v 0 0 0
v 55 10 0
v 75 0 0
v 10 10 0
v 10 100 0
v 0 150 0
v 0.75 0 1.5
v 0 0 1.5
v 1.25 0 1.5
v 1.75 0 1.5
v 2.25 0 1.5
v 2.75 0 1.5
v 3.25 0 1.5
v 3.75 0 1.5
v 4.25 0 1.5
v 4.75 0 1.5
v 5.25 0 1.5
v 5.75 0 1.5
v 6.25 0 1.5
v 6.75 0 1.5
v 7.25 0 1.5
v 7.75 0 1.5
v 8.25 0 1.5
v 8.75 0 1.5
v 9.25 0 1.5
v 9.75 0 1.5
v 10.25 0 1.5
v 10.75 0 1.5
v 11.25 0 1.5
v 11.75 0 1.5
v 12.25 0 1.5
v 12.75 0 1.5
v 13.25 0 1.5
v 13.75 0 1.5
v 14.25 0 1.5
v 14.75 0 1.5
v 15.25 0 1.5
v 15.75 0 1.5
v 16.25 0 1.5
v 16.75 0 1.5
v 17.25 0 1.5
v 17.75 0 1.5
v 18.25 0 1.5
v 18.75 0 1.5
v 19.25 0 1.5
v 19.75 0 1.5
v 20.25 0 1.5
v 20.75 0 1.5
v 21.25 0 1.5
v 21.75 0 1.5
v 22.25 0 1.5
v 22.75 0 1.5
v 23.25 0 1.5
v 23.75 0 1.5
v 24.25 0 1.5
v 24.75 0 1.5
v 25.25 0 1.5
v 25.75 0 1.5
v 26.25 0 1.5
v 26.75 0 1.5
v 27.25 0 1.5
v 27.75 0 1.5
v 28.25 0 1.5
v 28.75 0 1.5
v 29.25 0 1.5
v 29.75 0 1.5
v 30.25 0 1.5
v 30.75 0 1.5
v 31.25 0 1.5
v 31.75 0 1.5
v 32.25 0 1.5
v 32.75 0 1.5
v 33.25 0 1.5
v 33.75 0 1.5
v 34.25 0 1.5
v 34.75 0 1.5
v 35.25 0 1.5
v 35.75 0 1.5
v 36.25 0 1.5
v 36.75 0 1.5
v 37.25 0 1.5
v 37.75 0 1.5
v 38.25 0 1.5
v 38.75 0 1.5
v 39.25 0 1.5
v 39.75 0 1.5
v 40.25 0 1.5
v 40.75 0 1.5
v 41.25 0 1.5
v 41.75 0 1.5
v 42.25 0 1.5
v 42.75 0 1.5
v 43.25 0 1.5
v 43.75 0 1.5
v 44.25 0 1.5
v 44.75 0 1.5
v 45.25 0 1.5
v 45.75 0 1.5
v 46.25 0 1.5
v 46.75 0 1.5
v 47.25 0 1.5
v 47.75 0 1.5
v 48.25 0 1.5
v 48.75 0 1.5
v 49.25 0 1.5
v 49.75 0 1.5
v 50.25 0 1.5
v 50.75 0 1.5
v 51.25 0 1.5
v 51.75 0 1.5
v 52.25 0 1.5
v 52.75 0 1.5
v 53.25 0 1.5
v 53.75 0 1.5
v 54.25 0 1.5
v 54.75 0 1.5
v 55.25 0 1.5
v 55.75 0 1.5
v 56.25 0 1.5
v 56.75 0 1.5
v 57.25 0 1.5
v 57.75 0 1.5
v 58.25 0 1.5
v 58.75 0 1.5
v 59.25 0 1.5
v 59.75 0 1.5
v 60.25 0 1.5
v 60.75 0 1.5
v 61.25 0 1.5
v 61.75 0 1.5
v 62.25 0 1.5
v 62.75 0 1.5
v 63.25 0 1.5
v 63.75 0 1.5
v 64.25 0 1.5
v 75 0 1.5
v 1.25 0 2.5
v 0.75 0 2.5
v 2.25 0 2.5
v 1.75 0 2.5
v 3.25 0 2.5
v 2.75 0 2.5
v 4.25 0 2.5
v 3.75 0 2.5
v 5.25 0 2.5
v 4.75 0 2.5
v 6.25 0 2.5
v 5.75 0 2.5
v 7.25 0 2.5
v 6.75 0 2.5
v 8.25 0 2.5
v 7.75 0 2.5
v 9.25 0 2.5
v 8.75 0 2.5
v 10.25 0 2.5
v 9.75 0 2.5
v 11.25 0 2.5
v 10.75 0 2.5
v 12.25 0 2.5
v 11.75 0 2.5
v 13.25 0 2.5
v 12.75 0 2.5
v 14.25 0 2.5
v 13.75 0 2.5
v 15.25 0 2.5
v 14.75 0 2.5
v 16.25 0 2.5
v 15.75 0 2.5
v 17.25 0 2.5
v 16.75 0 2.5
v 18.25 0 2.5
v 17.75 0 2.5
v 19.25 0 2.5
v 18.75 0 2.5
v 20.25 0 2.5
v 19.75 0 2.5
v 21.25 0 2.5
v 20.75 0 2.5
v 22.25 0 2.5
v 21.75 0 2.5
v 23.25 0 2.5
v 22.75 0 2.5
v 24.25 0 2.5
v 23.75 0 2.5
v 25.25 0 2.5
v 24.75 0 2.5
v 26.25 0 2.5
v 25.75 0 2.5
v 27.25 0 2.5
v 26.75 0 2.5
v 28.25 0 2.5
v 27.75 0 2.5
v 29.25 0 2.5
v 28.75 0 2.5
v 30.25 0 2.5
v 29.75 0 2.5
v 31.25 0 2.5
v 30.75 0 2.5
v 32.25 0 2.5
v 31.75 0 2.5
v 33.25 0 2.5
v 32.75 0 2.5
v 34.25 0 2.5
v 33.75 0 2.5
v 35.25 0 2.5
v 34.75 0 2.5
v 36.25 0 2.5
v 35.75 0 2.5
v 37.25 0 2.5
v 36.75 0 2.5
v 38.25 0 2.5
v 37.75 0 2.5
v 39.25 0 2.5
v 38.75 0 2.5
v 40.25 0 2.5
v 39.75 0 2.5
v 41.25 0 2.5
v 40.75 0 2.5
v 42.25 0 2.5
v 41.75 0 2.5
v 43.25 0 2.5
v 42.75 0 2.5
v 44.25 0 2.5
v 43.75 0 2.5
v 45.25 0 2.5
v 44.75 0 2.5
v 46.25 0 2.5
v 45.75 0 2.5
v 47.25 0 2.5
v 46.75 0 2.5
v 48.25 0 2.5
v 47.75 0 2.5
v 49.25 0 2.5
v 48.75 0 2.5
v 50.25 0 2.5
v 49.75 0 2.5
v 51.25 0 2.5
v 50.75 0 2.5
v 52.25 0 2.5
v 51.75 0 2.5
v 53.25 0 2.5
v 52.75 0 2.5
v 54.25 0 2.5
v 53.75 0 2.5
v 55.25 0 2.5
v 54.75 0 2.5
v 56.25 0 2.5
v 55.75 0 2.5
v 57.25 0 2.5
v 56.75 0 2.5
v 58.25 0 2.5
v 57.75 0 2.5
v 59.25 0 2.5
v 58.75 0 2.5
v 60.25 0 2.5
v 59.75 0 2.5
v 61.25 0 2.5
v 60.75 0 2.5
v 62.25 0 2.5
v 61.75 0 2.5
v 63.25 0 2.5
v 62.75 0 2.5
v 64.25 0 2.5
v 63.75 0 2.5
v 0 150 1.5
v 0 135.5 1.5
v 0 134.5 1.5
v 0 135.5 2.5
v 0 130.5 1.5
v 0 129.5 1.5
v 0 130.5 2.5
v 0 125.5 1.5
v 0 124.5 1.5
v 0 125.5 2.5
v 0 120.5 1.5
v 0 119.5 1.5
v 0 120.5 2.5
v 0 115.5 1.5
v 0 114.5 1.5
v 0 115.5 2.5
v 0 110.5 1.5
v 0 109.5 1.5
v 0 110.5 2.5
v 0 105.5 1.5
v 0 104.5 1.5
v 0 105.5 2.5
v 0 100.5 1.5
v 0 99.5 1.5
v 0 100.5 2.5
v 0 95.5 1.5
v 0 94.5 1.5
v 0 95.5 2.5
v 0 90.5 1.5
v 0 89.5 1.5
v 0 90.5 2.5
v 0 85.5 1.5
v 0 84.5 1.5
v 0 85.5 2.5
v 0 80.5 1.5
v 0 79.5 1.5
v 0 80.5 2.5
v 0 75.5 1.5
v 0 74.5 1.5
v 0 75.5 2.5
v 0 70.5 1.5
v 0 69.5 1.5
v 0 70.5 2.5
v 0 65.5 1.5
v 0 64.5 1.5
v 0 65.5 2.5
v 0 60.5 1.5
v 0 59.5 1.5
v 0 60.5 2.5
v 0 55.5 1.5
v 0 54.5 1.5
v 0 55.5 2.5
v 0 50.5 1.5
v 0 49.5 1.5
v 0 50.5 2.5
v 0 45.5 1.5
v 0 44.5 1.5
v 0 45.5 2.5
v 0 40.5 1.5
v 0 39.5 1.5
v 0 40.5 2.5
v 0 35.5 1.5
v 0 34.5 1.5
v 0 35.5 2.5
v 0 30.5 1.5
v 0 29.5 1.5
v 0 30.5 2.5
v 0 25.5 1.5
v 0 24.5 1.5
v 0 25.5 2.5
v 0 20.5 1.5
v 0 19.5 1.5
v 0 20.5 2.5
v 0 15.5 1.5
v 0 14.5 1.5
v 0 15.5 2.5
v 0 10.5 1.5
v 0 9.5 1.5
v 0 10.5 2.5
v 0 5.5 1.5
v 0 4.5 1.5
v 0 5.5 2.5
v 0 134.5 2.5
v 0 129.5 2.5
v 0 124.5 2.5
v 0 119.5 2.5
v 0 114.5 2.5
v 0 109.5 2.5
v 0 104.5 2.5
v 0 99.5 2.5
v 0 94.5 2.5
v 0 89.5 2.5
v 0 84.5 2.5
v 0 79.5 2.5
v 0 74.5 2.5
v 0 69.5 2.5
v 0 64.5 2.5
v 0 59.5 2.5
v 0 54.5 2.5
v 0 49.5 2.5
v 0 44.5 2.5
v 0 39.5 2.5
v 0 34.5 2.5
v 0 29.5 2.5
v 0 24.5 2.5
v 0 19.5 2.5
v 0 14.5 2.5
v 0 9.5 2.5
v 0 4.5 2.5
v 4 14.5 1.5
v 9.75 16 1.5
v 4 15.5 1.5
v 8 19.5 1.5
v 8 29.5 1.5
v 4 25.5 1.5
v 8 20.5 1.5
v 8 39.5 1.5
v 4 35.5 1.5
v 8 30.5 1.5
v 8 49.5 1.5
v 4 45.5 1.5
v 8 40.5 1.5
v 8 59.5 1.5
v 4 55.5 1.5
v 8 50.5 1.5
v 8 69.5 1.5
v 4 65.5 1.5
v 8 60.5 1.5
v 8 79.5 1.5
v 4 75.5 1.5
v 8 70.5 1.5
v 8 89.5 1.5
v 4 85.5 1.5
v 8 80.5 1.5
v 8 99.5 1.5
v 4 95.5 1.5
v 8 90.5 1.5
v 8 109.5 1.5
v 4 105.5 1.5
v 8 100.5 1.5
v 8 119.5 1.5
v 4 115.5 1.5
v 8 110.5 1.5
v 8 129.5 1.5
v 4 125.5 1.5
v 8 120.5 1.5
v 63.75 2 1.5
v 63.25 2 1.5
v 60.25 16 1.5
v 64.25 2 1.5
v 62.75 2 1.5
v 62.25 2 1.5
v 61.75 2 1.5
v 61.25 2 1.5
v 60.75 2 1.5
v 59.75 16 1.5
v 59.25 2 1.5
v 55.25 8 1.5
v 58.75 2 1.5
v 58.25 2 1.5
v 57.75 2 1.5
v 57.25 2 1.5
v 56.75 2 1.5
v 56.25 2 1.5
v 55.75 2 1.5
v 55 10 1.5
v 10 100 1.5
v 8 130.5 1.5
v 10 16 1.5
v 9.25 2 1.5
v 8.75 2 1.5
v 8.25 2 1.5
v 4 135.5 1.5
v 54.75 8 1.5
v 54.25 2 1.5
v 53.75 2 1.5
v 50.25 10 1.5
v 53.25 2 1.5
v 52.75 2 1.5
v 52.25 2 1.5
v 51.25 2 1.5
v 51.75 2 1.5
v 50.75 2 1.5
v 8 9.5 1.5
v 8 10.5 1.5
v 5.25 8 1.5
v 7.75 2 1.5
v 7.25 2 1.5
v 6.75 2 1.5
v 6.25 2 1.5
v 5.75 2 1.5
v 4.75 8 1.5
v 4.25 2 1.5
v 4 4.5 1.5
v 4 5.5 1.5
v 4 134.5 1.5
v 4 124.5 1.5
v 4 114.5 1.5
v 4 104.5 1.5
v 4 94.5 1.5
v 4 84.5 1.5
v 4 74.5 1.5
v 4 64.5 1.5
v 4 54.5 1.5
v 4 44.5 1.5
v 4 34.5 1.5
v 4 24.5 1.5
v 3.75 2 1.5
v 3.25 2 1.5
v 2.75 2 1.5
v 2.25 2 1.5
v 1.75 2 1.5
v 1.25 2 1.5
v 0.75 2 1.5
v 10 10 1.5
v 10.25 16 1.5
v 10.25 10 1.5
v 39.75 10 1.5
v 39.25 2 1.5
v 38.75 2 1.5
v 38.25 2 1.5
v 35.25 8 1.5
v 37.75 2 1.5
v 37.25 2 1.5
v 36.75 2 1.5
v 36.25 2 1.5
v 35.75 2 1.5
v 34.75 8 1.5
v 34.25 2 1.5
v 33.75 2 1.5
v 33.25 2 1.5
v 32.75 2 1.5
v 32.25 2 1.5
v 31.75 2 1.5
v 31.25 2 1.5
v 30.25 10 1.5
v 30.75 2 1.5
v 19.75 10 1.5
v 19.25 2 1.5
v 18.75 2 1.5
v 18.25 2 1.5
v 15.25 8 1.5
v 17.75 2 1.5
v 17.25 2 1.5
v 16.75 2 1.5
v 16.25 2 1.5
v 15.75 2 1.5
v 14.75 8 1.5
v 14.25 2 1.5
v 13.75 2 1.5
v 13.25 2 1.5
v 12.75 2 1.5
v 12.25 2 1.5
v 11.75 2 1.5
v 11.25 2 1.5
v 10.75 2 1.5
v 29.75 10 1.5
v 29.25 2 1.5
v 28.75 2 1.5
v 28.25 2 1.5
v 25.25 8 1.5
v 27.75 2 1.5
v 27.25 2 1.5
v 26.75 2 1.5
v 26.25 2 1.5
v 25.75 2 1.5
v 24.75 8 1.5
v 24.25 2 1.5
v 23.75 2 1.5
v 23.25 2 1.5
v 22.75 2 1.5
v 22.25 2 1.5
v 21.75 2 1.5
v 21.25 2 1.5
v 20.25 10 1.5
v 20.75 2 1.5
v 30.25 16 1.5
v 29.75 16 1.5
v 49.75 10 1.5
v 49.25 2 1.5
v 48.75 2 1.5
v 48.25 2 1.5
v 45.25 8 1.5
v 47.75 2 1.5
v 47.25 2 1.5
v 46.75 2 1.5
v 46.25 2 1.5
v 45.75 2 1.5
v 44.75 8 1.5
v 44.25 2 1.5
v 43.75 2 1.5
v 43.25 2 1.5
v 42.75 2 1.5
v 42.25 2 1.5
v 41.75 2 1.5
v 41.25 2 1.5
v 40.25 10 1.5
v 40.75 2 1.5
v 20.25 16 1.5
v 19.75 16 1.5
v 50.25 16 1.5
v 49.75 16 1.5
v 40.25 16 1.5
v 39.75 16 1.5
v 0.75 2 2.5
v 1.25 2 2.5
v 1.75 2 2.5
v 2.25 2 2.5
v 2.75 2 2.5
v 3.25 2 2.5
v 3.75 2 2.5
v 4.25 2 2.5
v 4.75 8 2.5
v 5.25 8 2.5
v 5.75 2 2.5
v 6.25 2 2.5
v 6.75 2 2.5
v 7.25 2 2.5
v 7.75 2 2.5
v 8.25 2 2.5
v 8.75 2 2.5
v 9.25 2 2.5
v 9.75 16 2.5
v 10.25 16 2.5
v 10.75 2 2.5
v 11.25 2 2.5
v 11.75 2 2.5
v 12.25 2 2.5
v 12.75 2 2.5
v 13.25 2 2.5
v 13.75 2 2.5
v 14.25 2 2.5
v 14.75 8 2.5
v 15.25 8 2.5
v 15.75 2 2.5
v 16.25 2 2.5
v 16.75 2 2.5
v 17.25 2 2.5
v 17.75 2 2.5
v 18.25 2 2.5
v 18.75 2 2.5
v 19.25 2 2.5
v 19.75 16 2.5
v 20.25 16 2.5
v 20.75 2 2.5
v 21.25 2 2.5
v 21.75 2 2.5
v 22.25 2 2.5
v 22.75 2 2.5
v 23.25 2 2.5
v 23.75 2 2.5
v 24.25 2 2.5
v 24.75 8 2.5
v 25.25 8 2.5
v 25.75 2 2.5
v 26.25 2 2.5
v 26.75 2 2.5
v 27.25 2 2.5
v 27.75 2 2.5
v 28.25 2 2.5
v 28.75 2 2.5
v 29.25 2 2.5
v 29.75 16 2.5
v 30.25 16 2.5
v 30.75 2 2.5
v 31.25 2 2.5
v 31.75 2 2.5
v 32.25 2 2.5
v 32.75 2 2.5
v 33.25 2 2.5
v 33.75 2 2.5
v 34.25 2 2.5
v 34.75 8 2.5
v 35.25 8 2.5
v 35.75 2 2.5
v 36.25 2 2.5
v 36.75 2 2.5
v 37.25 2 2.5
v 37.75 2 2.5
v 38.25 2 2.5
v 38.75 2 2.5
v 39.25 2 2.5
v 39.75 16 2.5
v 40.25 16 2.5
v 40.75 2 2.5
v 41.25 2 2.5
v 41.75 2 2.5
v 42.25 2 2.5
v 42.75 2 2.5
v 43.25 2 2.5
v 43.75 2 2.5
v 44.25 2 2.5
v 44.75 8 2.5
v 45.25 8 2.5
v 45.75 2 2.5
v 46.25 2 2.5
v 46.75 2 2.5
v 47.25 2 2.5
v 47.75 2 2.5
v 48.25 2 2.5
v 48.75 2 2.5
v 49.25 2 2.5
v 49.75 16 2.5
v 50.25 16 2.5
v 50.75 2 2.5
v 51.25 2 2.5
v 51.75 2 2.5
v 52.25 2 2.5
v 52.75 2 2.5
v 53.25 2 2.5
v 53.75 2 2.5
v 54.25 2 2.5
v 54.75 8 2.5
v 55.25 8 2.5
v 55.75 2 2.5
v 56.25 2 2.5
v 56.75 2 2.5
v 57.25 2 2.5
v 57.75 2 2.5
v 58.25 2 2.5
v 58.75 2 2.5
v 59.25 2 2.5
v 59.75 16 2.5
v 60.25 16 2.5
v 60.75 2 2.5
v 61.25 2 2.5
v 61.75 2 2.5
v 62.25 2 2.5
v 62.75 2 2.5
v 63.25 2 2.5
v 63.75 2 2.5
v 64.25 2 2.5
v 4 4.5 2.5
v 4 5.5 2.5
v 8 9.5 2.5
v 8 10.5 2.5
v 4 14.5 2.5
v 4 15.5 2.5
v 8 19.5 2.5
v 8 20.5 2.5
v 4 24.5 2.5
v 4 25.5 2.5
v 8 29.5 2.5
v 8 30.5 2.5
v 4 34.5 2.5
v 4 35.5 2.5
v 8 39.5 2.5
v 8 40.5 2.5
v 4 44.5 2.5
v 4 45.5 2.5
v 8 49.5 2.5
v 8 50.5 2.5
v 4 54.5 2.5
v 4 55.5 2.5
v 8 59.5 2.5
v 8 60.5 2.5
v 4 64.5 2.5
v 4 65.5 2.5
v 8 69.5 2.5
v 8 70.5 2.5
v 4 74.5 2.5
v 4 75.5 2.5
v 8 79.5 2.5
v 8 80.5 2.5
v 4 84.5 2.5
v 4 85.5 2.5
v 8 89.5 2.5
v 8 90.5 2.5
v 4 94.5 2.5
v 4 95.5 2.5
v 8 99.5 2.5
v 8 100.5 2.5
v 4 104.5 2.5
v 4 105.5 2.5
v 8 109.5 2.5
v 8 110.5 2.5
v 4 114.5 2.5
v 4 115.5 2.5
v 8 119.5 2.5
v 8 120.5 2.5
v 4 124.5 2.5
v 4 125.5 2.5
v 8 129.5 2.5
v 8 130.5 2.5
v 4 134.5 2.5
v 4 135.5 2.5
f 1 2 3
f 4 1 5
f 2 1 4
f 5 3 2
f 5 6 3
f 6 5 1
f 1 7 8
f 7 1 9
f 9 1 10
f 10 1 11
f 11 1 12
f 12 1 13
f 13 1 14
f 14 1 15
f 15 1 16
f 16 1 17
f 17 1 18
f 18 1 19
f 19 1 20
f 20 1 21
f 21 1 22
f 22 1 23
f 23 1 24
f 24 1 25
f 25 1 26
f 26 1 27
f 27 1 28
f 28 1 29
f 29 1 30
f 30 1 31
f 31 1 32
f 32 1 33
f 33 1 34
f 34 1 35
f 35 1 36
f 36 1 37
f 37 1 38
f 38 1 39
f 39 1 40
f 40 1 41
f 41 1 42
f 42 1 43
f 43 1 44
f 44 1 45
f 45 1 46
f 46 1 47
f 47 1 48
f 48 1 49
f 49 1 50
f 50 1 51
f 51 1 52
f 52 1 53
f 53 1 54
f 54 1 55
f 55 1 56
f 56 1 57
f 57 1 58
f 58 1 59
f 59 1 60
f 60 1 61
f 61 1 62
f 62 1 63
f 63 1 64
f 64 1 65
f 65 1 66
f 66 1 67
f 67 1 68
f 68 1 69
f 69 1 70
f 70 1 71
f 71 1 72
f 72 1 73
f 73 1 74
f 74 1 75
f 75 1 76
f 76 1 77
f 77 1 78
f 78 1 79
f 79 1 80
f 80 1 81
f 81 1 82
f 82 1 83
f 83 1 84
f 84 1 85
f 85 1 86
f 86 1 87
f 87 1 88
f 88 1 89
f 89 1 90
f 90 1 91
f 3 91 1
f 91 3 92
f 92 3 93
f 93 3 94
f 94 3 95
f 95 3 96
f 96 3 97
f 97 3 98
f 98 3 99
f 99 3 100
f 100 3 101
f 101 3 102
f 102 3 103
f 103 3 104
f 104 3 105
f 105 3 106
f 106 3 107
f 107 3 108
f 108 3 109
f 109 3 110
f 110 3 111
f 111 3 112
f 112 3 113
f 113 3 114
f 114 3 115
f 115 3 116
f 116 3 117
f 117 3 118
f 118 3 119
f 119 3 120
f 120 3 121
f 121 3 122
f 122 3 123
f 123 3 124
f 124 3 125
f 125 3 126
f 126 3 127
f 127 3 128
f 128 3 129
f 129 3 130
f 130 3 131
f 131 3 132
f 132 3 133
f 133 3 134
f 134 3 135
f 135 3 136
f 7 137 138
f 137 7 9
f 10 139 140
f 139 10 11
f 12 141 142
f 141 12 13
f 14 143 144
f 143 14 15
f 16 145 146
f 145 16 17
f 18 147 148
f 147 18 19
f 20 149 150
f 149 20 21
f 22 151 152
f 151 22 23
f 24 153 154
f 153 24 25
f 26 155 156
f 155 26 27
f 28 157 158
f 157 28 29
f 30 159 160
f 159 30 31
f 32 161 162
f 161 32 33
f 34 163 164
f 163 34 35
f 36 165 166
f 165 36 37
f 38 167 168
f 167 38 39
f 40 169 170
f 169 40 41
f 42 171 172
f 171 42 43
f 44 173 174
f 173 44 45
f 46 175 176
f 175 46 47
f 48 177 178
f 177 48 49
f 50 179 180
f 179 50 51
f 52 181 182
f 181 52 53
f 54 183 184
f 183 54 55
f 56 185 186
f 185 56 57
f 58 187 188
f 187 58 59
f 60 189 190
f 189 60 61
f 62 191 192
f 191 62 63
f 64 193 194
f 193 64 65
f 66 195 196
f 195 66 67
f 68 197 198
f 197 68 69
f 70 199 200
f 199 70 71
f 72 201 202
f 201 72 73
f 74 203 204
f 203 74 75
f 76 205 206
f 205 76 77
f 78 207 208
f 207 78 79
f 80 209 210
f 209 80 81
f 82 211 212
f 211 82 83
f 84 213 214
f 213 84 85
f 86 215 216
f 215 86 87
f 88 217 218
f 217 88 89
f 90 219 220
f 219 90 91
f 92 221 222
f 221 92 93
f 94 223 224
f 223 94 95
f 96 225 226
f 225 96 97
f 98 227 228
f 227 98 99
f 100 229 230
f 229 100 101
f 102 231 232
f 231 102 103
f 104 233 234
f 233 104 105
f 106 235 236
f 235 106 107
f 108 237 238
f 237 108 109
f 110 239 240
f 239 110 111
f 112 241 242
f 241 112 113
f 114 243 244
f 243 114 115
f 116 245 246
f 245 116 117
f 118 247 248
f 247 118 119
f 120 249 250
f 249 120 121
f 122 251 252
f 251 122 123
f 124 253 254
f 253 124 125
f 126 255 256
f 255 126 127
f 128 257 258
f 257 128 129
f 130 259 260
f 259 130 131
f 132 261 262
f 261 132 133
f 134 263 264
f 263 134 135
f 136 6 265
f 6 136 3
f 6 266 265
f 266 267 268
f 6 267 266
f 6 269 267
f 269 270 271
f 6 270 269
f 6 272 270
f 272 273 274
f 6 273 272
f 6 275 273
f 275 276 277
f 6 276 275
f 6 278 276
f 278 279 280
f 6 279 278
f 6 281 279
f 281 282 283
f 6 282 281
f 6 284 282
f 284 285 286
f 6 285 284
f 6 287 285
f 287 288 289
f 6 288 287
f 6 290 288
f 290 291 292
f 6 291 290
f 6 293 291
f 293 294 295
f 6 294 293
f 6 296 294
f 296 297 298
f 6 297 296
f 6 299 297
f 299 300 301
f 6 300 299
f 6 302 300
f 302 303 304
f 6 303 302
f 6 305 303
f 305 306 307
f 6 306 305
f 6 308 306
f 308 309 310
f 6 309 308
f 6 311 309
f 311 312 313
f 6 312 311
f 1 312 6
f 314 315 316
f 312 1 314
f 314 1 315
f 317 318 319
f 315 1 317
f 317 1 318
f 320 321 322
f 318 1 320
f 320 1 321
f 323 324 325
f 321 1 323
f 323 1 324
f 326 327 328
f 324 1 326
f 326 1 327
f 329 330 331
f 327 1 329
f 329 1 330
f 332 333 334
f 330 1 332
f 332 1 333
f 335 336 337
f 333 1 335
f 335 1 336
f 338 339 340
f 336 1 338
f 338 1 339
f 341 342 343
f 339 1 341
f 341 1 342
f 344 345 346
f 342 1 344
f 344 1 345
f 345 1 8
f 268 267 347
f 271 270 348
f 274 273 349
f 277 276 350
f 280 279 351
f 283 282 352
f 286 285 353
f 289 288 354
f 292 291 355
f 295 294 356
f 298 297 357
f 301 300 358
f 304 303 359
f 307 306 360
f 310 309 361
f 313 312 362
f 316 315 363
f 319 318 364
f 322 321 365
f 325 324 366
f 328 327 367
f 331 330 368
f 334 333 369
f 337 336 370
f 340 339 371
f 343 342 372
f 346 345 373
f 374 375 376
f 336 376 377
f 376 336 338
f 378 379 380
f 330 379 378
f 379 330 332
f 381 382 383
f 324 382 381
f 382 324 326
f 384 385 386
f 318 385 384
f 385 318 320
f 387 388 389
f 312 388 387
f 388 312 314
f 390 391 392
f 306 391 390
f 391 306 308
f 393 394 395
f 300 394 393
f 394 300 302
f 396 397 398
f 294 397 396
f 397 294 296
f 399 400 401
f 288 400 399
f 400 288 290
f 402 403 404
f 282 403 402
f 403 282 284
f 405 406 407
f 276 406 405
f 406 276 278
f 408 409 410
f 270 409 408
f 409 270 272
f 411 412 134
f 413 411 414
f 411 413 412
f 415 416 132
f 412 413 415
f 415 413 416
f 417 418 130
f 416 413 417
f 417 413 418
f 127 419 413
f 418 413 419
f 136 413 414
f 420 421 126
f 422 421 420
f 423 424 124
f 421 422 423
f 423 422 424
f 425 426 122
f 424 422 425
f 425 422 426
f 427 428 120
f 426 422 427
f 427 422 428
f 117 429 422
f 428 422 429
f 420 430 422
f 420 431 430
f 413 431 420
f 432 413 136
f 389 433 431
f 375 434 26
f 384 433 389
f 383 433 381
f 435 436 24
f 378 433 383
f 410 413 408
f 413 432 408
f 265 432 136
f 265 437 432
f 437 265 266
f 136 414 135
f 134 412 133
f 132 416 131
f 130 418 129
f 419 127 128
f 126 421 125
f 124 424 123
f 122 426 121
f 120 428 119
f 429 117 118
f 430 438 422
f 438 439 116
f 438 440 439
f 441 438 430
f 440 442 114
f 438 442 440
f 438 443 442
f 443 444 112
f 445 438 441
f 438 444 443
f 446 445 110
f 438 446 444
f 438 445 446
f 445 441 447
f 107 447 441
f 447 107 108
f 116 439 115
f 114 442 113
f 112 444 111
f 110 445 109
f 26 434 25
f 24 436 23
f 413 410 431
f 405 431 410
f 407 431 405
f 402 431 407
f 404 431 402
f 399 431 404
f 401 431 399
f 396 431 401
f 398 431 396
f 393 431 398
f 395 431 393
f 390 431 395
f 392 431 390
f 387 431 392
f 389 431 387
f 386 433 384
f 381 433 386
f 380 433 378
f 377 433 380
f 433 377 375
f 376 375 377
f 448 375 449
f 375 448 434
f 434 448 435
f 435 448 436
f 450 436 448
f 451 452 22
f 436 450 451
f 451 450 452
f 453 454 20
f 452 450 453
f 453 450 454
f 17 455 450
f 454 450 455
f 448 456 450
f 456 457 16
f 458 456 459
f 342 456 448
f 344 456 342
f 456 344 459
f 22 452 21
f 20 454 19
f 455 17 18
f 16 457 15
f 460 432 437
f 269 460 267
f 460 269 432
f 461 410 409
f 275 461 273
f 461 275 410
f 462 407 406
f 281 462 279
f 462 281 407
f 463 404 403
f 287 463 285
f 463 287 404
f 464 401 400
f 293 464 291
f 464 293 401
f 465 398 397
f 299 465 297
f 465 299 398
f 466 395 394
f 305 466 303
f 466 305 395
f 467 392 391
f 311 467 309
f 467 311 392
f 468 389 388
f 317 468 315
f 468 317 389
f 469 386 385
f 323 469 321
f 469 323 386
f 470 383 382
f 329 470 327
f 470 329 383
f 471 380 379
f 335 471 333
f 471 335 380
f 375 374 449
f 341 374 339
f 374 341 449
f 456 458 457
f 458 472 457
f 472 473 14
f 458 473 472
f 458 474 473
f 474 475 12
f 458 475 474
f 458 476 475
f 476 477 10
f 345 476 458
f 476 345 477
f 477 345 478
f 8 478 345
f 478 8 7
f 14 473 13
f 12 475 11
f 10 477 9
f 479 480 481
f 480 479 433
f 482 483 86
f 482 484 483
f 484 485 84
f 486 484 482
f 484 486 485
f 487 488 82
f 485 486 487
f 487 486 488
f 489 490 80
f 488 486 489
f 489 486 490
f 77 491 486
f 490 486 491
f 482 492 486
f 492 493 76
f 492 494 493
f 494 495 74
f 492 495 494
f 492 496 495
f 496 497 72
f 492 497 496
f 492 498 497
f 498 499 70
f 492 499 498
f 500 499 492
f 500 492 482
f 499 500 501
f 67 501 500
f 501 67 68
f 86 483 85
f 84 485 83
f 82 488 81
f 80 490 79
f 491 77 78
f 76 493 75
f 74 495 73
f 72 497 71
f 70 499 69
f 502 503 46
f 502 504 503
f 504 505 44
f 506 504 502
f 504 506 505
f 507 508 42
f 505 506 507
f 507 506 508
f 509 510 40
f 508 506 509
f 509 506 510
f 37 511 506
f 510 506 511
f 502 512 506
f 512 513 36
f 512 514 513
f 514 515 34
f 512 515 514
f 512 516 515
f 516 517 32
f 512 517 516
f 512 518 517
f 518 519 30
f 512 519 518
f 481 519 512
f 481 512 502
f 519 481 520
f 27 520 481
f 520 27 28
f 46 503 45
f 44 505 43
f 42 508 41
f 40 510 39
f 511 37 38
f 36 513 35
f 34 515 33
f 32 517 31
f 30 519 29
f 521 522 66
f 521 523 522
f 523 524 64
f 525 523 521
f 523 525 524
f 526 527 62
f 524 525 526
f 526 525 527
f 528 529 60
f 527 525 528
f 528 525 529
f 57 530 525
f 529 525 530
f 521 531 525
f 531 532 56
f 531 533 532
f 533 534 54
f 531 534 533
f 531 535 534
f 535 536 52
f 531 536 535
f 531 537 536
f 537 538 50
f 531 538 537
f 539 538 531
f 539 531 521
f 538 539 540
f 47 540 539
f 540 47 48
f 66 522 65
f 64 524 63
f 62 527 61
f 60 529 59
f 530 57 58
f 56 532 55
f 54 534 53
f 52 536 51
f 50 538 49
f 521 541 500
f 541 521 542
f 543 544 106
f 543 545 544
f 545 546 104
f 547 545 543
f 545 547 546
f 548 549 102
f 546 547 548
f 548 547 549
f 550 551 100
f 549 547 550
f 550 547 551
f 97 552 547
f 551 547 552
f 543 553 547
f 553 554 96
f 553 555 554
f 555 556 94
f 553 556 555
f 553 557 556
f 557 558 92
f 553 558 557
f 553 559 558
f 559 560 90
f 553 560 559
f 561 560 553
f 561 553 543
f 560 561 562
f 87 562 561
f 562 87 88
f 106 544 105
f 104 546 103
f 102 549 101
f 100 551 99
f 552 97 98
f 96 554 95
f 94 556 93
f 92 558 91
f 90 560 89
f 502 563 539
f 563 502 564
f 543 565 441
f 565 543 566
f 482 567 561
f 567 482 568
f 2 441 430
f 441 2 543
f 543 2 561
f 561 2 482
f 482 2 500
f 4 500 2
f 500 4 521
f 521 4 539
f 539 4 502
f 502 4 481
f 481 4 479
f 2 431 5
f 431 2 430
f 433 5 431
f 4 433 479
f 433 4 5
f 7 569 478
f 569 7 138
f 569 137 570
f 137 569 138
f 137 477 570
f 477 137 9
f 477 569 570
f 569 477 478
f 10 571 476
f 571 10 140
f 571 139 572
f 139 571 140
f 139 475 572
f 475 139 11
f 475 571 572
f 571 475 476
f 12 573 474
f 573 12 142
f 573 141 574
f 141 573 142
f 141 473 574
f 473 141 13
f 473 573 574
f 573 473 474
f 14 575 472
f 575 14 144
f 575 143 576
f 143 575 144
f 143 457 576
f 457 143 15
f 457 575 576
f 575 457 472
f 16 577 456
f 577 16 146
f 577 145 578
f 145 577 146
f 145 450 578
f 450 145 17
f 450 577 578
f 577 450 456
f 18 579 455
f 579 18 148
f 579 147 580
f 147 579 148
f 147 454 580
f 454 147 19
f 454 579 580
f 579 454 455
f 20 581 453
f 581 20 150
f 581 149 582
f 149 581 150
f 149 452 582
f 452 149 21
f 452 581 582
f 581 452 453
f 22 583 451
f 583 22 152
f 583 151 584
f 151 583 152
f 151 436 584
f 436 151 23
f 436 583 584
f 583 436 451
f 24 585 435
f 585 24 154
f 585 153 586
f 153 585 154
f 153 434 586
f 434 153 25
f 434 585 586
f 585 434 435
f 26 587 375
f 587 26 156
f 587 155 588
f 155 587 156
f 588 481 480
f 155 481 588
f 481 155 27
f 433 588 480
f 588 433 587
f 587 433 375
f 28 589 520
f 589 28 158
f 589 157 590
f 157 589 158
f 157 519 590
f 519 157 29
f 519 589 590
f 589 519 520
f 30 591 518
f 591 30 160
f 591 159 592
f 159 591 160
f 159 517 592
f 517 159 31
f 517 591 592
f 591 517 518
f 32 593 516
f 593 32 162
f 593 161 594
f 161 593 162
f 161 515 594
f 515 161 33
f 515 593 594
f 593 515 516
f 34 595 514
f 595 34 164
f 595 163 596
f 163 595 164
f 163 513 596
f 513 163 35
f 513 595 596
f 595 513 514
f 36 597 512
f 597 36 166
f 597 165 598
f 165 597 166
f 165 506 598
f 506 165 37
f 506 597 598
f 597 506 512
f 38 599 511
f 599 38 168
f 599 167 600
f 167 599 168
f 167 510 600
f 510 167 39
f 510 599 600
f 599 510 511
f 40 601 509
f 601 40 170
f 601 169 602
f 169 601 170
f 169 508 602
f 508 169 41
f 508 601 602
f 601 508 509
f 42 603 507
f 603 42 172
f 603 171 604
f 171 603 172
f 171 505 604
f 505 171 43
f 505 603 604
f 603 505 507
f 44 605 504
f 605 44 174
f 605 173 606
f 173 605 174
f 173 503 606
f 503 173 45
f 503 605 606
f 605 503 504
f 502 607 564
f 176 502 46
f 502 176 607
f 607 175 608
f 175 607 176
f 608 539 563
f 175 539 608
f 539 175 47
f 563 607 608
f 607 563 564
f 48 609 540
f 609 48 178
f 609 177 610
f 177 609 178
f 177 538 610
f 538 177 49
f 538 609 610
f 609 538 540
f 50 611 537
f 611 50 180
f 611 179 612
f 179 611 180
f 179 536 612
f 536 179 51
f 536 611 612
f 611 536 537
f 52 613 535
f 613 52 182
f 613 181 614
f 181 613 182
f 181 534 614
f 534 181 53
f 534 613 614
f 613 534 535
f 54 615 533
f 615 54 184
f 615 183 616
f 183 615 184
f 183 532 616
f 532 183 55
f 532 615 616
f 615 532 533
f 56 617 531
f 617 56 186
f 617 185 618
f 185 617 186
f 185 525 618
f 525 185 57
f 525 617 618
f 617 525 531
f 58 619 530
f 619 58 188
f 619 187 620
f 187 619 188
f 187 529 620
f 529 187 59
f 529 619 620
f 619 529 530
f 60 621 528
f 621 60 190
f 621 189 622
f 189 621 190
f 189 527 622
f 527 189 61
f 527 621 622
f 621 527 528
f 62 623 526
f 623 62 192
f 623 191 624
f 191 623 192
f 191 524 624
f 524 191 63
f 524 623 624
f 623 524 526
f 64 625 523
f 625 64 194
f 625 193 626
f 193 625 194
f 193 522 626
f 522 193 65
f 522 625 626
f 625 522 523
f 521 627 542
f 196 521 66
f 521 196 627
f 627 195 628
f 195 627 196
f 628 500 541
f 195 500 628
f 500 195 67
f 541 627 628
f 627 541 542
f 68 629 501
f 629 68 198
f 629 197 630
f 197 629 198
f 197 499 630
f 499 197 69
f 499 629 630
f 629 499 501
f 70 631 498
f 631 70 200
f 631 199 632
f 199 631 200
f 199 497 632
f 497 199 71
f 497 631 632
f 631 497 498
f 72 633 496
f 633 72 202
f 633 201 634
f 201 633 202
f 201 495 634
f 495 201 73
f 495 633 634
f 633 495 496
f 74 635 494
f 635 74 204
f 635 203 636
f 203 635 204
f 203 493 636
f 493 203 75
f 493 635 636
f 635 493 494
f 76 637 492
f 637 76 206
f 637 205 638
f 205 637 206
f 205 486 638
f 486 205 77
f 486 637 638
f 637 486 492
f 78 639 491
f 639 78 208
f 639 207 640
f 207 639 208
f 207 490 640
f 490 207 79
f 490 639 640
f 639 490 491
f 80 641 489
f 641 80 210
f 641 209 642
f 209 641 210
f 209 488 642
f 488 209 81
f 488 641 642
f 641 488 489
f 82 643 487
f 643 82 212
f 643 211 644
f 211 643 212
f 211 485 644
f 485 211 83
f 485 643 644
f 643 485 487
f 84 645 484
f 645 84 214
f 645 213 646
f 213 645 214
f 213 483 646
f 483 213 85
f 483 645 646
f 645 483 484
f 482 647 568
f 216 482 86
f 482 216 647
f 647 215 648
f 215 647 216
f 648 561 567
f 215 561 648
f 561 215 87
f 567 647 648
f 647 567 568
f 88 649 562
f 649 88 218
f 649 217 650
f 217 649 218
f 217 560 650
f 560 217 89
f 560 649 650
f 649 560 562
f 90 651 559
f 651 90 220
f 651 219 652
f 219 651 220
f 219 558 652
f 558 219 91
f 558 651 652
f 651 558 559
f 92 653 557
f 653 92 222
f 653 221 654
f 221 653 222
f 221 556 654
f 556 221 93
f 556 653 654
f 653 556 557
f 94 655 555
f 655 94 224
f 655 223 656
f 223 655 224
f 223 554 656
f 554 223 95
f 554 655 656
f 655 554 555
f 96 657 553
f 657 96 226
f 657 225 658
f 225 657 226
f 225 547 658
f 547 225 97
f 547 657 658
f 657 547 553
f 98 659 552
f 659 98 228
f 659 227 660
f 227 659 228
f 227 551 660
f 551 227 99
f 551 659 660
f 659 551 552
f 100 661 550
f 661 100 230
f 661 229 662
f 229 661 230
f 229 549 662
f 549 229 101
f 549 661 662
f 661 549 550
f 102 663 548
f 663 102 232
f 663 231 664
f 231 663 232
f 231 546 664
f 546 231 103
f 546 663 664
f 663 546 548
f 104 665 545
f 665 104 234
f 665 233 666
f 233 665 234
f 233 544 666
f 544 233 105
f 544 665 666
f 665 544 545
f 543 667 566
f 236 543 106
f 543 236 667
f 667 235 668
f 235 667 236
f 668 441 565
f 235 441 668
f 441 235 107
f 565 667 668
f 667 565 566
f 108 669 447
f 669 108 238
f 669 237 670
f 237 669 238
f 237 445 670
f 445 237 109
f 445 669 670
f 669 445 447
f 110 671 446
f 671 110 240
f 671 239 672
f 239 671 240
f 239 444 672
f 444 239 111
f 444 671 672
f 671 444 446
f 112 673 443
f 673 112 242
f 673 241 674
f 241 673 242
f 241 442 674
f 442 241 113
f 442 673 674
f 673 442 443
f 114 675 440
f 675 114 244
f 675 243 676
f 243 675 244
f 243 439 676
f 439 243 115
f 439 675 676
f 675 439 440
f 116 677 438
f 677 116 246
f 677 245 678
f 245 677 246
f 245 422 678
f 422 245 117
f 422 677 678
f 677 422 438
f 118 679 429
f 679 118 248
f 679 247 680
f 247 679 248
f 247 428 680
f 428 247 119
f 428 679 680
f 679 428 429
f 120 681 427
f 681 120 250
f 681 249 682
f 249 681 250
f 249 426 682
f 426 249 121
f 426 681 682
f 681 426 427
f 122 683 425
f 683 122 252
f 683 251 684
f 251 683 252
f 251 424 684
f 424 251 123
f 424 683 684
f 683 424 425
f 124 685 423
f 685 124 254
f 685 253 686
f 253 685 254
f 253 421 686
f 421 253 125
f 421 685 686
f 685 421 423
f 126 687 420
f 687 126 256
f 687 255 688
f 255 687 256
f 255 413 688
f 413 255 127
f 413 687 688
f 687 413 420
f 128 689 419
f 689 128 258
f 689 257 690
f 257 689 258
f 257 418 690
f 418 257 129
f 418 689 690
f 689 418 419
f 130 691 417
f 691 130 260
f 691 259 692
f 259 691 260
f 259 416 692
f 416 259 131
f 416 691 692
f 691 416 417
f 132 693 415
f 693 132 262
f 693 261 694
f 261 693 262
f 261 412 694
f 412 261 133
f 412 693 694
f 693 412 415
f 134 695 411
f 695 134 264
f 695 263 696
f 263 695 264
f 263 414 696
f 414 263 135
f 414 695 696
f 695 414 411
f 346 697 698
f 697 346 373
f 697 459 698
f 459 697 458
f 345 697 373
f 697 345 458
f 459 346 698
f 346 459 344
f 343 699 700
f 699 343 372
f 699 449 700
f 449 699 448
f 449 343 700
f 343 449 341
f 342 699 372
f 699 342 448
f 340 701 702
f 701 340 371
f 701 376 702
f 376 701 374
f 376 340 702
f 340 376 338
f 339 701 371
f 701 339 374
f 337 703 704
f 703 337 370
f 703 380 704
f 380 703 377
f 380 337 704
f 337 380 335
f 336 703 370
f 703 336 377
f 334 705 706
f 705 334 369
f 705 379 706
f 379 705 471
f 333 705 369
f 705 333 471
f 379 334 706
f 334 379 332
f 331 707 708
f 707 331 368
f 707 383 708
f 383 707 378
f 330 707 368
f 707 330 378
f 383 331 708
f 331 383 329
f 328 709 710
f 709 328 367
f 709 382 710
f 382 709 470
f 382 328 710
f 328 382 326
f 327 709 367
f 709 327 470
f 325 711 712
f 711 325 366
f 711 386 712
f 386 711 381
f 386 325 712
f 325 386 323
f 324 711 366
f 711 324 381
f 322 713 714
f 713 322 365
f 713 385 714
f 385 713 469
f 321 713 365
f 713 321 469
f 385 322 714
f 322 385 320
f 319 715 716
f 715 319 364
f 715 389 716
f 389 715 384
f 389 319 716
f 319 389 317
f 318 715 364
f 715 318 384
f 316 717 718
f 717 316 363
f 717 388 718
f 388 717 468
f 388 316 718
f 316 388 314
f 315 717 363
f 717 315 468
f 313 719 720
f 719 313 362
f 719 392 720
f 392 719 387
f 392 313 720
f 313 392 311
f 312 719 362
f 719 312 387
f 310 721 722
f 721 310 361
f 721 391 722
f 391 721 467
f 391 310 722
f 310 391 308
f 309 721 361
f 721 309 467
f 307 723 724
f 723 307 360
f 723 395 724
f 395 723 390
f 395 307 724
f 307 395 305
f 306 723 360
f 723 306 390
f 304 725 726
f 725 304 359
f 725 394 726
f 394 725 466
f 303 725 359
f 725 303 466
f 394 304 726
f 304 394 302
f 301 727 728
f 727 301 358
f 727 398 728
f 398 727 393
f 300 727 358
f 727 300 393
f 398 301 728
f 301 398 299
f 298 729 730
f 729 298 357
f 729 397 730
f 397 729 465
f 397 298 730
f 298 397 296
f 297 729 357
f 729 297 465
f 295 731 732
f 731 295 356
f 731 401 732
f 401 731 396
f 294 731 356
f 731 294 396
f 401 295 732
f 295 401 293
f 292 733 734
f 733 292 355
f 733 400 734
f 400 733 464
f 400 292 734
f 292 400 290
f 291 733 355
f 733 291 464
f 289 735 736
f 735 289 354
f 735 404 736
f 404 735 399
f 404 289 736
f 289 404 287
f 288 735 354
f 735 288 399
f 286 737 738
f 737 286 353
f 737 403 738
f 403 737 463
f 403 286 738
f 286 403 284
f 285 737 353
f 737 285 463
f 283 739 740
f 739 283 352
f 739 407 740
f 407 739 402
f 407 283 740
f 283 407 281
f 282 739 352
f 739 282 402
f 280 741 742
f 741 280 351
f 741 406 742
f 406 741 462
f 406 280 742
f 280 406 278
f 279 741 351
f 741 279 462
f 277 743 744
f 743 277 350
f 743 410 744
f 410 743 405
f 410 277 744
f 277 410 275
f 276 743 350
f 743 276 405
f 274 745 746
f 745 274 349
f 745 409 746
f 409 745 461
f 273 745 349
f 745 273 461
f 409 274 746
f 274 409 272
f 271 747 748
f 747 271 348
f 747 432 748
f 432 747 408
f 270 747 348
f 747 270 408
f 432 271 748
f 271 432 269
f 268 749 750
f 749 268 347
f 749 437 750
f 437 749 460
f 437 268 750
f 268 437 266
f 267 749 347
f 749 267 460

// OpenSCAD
$base=75;
$height=1.5;
$width=10;
$mark_width = 1;
$mark_depth = 4;
$mark_height = 1;
$micromark_width = 0.5;
$micromark_depth = 2;
$micromark_height = 1;

module triangle(base) {
linear_extrude($height)
polygon(points=[[0,0], [0,base*2], [base,0]]);
}

module shape() {
difference() {
triangle($base);
translate([$width, $width, 0])
triangle($base-$width*3);
}
}

module setSquare() {
shape();
for( i = [1:$base-$width-1]) {
if(i % 1 == 0) {
tmd=$micromark_depth*((i%10==0)?4:2);
md=$micromark_depth*((i%5==0)?tmd:1);
translate([i-$micromark_width/2, 0, $height]) cube([$micromark_width, md, $micromark_height]);
}
}
for( i = [1:$base*2-$width-1]) {
if(i % 5 == 0) {
md=$mark_depth*((i%10==0)?2:1);
translate([0, i-$mark_width/2,  $height]) cube([md, $mark_width, $mark_height]);
}
}
}

setSquare();
